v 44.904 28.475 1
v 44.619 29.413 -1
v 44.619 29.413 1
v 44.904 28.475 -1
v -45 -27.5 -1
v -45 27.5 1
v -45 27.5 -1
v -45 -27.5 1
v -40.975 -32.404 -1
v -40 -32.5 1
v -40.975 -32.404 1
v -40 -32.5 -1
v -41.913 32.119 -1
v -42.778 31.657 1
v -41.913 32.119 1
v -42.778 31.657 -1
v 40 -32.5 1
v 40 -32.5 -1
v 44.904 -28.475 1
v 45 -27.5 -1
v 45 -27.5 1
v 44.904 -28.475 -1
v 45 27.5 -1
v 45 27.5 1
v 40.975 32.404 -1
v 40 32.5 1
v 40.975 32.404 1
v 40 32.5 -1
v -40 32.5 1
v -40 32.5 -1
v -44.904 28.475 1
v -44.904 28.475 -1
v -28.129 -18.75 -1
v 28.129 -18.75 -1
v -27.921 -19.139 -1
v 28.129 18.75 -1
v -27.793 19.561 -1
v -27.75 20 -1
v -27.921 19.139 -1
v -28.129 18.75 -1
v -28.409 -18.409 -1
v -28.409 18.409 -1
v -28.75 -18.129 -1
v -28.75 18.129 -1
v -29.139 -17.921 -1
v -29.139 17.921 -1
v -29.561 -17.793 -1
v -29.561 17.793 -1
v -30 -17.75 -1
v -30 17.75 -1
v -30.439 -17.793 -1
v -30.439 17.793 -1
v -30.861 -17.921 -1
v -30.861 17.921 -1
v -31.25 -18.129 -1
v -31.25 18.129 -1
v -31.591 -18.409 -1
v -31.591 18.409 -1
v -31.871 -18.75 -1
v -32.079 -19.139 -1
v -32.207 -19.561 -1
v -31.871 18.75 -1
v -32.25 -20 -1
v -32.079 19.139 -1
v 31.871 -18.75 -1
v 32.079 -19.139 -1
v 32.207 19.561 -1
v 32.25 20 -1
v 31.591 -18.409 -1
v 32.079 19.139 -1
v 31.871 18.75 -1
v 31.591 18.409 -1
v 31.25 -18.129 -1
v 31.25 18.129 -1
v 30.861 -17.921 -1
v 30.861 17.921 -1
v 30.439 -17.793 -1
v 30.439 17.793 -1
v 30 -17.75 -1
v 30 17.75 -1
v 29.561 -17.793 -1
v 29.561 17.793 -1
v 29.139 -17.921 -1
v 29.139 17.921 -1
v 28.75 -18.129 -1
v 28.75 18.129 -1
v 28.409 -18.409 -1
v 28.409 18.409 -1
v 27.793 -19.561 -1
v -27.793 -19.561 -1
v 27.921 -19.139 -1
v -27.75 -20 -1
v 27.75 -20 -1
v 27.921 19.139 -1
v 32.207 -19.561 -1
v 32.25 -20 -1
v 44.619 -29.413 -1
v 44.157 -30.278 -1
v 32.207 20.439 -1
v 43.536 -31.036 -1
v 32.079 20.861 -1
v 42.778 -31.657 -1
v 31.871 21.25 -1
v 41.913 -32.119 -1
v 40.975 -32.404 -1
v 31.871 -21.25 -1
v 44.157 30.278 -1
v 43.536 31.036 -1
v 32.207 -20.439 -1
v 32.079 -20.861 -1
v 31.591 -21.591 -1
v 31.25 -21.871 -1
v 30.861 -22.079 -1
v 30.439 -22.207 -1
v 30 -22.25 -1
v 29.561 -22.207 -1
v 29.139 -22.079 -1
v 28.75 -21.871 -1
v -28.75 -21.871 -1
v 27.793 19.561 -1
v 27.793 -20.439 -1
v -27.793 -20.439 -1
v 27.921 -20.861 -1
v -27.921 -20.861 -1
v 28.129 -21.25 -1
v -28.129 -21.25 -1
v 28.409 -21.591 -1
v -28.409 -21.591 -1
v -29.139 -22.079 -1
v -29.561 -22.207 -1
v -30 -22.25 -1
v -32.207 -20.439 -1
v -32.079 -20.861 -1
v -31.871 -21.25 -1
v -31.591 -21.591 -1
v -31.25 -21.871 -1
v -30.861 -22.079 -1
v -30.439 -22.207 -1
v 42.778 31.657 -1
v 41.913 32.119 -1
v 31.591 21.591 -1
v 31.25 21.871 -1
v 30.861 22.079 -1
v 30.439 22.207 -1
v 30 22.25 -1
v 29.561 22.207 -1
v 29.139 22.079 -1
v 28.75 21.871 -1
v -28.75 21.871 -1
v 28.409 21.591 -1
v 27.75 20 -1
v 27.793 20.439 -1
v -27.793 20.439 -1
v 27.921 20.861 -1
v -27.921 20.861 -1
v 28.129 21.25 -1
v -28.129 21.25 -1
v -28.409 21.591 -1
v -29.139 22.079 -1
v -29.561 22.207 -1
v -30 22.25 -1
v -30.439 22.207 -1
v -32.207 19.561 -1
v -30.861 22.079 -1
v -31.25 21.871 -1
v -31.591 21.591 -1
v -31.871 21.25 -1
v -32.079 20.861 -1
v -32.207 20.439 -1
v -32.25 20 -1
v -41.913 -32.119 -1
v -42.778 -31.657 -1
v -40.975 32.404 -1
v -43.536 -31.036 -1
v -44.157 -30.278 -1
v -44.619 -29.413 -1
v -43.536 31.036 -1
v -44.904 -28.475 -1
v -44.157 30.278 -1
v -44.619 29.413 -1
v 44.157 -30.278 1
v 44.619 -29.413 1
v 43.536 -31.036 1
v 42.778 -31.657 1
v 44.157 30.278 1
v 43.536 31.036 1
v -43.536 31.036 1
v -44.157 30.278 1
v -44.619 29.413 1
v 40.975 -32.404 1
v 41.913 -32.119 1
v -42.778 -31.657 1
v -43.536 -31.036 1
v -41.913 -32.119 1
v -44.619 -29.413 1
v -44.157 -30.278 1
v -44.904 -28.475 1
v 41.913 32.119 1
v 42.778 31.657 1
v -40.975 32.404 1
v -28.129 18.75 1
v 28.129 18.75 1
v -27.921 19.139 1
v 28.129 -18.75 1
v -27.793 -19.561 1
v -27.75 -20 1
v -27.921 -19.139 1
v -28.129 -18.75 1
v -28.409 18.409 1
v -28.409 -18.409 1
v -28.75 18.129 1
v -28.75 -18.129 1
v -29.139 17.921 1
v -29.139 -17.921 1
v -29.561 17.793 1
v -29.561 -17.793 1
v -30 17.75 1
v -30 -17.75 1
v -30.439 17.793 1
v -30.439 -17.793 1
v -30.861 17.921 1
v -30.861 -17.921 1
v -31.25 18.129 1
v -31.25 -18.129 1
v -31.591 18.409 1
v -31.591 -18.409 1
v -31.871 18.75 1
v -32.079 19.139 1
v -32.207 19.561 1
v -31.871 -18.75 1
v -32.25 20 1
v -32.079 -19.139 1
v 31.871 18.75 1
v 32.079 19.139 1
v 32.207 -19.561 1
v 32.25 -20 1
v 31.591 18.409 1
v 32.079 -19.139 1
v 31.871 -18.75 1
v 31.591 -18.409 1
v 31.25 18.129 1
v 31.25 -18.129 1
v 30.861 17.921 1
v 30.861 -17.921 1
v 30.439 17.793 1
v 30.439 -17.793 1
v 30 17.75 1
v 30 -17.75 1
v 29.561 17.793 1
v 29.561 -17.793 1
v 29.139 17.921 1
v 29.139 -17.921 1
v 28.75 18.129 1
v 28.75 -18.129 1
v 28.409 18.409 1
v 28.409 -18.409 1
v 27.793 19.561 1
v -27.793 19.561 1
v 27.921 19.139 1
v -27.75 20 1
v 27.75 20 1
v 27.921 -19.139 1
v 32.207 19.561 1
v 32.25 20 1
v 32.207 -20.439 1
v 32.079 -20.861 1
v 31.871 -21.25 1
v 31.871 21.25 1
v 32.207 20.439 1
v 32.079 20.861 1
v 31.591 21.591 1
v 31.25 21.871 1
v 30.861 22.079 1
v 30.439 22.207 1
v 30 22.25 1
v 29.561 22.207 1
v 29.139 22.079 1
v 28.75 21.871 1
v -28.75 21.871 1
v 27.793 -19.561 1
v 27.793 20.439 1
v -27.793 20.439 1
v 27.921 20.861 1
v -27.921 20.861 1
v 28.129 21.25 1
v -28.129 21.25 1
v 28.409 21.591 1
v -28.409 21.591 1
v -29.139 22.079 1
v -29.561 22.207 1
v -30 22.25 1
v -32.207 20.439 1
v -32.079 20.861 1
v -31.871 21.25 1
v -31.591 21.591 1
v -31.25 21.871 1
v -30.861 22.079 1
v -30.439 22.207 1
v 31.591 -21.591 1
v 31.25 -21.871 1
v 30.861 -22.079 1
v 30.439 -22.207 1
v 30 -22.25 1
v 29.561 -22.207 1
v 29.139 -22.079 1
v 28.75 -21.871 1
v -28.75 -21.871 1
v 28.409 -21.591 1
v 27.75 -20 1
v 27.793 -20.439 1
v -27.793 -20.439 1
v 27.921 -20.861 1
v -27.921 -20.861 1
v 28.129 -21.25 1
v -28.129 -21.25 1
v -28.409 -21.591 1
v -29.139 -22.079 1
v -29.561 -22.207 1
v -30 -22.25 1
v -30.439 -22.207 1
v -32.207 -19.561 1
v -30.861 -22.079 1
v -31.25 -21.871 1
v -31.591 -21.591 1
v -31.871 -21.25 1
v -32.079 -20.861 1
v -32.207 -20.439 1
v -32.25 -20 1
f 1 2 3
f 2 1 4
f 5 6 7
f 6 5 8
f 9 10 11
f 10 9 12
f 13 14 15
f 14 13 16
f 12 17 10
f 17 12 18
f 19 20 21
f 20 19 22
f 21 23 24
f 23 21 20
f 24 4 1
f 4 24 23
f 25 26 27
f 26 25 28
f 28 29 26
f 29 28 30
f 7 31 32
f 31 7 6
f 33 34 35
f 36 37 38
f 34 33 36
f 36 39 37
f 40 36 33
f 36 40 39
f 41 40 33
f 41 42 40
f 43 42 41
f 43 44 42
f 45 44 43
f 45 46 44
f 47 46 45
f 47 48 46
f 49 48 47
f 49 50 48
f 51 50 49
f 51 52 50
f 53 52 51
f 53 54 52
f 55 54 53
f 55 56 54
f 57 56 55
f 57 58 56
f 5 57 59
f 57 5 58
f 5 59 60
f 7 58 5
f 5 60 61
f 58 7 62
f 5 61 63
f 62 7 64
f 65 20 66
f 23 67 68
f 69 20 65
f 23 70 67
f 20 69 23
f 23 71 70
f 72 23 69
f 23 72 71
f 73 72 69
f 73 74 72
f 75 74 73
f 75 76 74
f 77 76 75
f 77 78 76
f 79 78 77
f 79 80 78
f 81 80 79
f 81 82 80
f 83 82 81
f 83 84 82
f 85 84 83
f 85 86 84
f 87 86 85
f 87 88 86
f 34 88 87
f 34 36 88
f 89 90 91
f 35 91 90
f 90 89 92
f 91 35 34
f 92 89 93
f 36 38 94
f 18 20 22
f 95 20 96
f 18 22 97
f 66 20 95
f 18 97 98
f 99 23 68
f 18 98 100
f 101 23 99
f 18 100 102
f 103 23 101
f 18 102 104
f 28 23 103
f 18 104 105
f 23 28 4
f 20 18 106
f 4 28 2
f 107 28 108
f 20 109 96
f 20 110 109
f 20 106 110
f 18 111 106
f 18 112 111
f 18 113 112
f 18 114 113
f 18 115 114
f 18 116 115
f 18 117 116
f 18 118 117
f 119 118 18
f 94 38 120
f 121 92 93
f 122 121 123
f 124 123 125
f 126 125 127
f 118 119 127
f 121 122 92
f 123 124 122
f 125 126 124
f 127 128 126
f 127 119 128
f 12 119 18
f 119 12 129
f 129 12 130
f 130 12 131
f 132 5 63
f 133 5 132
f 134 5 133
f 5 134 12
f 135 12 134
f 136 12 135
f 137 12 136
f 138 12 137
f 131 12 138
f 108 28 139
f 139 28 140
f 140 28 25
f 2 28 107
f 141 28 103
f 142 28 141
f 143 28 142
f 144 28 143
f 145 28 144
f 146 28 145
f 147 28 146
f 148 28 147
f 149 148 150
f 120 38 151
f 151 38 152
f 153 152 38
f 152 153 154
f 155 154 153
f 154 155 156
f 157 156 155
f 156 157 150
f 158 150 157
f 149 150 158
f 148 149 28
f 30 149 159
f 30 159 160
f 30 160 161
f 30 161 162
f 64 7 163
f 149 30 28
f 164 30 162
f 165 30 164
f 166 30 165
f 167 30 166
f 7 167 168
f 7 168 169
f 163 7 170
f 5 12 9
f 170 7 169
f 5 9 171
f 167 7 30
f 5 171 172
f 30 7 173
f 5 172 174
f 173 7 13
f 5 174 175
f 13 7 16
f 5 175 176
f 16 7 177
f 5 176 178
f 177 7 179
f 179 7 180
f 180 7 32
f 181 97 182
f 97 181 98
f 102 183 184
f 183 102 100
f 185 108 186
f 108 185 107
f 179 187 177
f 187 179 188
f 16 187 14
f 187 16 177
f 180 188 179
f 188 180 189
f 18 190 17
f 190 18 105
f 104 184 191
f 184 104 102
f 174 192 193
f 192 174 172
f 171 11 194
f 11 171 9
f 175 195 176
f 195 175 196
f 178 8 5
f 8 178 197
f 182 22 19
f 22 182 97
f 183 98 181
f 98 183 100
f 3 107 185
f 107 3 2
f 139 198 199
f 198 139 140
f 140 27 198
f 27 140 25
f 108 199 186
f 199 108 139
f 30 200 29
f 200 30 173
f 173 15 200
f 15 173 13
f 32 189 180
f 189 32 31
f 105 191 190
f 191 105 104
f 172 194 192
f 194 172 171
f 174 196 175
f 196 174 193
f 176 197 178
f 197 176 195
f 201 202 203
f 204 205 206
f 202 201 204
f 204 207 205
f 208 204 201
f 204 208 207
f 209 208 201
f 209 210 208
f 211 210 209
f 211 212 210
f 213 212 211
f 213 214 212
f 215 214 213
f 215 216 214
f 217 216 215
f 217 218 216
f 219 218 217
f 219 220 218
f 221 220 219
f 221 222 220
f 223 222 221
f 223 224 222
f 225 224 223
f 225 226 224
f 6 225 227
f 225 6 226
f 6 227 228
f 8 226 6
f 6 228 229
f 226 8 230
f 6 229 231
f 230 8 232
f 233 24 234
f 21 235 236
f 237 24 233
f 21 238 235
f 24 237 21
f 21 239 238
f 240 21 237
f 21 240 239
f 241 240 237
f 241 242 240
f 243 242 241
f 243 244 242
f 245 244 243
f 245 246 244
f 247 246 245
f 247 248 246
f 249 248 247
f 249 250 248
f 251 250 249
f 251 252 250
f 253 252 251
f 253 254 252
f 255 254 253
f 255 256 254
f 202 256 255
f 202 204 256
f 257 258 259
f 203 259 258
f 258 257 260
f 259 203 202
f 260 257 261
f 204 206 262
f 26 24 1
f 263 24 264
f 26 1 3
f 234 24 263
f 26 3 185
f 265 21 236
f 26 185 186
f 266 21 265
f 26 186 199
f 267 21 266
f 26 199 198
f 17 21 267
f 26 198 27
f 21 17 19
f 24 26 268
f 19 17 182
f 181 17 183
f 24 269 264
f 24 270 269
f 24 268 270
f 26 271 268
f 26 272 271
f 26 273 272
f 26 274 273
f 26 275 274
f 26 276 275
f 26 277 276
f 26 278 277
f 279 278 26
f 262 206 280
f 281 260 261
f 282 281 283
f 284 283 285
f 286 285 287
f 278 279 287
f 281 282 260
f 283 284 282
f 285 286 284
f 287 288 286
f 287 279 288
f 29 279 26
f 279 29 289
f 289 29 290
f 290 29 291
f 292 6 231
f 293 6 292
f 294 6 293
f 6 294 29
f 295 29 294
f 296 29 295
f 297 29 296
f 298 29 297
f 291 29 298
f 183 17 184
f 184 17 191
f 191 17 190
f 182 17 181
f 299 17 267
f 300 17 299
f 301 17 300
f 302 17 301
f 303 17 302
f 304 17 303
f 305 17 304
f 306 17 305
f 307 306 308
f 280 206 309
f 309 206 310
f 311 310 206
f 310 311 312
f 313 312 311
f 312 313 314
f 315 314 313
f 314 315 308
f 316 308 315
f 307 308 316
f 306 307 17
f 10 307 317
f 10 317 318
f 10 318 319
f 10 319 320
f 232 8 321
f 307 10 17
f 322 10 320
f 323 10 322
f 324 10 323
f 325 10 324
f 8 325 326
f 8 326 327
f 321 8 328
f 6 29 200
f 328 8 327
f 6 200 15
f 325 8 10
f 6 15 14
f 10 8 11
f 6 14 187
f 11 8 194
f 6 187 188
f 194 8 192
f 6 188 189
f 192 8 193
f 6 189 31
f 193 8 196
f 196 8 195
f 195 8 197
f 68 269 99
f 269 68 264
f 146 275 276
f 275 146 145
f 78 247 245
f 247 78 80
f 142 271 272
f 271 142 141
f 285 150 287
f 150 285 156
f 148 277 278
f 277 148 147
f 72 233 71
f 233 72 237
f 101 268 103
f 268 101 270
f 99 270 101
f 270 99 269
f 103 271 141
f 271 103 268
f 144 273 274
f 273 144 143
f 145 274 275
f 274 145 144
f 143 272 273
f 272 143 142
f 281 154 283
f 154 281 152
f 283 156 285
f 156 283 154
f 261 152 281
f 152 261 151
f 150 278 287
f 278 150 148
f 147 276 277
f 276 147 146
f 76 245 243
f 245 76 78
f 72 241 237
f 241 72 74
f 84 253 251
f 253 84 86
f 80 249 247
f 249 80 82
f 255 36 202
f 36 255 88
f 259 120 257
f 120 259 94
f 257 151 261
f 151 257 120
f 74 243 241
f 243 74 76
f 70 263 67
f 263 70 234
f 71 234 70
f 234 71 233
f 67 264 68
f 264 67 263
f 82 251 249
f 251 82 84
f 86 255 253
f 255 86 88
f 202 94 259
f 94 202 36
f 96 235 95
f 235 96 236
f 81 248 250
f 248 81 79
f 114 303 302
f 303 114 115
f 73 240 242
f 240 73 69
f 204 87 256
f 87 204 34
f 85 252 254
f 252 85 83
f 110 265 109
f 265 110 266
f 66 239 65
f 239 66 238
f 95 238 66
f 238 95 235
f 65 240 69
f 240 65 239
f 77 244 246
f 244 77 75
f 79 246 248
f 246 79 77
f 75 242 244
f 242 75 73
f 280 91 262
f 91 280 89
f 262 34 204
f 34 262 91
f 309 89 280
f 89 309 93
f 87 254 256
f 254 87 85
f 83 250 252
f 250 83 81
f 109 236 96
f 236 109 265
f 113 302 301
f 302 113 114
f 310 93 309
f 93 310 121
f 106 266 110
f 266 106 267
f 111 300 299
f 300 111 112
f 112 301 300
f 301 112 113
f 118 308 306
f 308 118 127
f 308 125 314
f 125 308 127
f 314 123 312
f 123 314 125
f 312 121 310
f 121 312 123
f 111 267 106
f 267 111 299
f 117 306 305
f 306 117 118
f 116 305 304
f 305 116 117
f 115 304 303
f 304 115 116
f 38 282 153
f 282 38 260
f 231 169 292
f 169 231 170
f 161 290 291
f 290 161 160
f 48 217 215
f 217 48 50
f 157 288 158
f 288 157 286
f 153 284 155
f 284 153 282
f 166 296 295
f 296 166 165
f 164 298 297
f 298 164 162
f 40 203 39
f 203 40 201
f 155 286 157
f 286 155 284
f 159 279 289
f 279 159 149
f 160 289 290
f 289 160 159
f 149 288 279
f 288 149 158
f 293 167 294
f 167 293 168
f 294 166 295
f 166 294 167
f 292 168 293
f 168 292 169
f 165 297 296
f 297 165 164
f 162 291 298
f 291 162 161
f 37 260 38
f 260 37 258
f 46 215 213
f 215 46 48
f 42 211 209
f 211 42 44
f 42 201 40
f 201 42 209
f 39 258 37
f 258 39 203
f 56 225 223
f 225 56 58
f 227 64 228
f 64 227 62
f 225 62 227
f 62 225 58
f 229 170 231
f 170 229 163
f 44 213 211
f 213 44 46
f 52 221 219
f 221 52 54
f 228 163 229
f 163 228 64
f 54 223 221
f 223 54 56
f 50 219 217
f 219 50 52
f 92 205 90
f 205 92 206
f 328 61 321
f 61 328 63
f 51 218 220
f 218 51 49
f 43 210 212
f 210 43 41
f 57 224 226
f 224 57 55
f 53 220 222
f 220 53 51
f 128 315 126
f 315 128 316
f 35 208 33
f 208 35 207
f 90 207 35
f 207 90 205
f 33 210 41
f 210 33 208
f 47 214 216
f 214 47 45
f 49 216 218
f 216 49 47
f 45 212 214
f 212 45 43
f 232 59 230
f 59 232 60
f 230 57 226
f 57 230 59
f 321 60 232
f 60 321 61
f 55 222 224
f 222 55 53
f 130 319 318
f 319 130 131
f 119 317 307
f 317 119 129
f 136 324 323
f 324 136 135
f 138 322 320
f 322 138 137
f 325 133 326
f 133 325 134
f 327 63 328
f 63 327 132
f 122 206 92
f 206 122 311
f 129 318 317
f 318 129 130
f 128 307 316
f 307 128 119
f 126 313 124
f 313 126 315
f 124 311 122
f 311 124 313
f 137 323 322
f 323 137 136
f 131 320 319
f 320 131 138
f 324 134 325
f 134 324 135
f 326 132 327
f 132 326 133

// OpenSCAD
/*
    Proxymow Mower - Hinge
    Print in TPU

    Adjust thickness to vary flexibility
*/

fix_hole_dia = 4.5;
corner_dia = 10;
hinge_length = 55;
hinge_width = 80;
thickness = 2.0;
fix_offset_x = 30;
fix_offset_y = 20;

module hinge() {
    difference() {
        hull() {
            translate([hinge_width/2, hinge_length/2, 0]) cylinder(h=thickness, d=corner_dia, $fn=32, center=true);
            translate([-hinge_width/2, hinge_length/2, 0]) cylinder(h=thickness, d=corner_dia, $fn=32, center=true);
            translate([hinge_width/2, -hinge_length/2, 0]) cylinder(h=thickness, d=corner_dia, $fn=32, center=true);
            translate([-hinge_width/2, -hinge_length/2, 0]) cylinder(h=thickness, d=corner_dia, $fn=32, center=true);
        }
        translate([fix_offset_x, fix_offset_y, 1]) cylinder(h=thickness+2, d=fix_hole_dia, center=true, $fn=32);
        translate([fix_offset_x, -fix_offset_y, 1]) cylinder(h=thickness+2, d=fix_hole_dia, center=true, $fn=32);
        translate([-fix_offset_x, fix_offset_y, 1]) cylinder(h=thickness+2, d=fix_hole_dia, center=true, $fn=32);
        translate([-fix_offset_x, -fix_offset_y, 1]) cylinder(h=thickness+2, d=fix_hole_dia, center=true, $fn=32);
    }
}

hinge();
